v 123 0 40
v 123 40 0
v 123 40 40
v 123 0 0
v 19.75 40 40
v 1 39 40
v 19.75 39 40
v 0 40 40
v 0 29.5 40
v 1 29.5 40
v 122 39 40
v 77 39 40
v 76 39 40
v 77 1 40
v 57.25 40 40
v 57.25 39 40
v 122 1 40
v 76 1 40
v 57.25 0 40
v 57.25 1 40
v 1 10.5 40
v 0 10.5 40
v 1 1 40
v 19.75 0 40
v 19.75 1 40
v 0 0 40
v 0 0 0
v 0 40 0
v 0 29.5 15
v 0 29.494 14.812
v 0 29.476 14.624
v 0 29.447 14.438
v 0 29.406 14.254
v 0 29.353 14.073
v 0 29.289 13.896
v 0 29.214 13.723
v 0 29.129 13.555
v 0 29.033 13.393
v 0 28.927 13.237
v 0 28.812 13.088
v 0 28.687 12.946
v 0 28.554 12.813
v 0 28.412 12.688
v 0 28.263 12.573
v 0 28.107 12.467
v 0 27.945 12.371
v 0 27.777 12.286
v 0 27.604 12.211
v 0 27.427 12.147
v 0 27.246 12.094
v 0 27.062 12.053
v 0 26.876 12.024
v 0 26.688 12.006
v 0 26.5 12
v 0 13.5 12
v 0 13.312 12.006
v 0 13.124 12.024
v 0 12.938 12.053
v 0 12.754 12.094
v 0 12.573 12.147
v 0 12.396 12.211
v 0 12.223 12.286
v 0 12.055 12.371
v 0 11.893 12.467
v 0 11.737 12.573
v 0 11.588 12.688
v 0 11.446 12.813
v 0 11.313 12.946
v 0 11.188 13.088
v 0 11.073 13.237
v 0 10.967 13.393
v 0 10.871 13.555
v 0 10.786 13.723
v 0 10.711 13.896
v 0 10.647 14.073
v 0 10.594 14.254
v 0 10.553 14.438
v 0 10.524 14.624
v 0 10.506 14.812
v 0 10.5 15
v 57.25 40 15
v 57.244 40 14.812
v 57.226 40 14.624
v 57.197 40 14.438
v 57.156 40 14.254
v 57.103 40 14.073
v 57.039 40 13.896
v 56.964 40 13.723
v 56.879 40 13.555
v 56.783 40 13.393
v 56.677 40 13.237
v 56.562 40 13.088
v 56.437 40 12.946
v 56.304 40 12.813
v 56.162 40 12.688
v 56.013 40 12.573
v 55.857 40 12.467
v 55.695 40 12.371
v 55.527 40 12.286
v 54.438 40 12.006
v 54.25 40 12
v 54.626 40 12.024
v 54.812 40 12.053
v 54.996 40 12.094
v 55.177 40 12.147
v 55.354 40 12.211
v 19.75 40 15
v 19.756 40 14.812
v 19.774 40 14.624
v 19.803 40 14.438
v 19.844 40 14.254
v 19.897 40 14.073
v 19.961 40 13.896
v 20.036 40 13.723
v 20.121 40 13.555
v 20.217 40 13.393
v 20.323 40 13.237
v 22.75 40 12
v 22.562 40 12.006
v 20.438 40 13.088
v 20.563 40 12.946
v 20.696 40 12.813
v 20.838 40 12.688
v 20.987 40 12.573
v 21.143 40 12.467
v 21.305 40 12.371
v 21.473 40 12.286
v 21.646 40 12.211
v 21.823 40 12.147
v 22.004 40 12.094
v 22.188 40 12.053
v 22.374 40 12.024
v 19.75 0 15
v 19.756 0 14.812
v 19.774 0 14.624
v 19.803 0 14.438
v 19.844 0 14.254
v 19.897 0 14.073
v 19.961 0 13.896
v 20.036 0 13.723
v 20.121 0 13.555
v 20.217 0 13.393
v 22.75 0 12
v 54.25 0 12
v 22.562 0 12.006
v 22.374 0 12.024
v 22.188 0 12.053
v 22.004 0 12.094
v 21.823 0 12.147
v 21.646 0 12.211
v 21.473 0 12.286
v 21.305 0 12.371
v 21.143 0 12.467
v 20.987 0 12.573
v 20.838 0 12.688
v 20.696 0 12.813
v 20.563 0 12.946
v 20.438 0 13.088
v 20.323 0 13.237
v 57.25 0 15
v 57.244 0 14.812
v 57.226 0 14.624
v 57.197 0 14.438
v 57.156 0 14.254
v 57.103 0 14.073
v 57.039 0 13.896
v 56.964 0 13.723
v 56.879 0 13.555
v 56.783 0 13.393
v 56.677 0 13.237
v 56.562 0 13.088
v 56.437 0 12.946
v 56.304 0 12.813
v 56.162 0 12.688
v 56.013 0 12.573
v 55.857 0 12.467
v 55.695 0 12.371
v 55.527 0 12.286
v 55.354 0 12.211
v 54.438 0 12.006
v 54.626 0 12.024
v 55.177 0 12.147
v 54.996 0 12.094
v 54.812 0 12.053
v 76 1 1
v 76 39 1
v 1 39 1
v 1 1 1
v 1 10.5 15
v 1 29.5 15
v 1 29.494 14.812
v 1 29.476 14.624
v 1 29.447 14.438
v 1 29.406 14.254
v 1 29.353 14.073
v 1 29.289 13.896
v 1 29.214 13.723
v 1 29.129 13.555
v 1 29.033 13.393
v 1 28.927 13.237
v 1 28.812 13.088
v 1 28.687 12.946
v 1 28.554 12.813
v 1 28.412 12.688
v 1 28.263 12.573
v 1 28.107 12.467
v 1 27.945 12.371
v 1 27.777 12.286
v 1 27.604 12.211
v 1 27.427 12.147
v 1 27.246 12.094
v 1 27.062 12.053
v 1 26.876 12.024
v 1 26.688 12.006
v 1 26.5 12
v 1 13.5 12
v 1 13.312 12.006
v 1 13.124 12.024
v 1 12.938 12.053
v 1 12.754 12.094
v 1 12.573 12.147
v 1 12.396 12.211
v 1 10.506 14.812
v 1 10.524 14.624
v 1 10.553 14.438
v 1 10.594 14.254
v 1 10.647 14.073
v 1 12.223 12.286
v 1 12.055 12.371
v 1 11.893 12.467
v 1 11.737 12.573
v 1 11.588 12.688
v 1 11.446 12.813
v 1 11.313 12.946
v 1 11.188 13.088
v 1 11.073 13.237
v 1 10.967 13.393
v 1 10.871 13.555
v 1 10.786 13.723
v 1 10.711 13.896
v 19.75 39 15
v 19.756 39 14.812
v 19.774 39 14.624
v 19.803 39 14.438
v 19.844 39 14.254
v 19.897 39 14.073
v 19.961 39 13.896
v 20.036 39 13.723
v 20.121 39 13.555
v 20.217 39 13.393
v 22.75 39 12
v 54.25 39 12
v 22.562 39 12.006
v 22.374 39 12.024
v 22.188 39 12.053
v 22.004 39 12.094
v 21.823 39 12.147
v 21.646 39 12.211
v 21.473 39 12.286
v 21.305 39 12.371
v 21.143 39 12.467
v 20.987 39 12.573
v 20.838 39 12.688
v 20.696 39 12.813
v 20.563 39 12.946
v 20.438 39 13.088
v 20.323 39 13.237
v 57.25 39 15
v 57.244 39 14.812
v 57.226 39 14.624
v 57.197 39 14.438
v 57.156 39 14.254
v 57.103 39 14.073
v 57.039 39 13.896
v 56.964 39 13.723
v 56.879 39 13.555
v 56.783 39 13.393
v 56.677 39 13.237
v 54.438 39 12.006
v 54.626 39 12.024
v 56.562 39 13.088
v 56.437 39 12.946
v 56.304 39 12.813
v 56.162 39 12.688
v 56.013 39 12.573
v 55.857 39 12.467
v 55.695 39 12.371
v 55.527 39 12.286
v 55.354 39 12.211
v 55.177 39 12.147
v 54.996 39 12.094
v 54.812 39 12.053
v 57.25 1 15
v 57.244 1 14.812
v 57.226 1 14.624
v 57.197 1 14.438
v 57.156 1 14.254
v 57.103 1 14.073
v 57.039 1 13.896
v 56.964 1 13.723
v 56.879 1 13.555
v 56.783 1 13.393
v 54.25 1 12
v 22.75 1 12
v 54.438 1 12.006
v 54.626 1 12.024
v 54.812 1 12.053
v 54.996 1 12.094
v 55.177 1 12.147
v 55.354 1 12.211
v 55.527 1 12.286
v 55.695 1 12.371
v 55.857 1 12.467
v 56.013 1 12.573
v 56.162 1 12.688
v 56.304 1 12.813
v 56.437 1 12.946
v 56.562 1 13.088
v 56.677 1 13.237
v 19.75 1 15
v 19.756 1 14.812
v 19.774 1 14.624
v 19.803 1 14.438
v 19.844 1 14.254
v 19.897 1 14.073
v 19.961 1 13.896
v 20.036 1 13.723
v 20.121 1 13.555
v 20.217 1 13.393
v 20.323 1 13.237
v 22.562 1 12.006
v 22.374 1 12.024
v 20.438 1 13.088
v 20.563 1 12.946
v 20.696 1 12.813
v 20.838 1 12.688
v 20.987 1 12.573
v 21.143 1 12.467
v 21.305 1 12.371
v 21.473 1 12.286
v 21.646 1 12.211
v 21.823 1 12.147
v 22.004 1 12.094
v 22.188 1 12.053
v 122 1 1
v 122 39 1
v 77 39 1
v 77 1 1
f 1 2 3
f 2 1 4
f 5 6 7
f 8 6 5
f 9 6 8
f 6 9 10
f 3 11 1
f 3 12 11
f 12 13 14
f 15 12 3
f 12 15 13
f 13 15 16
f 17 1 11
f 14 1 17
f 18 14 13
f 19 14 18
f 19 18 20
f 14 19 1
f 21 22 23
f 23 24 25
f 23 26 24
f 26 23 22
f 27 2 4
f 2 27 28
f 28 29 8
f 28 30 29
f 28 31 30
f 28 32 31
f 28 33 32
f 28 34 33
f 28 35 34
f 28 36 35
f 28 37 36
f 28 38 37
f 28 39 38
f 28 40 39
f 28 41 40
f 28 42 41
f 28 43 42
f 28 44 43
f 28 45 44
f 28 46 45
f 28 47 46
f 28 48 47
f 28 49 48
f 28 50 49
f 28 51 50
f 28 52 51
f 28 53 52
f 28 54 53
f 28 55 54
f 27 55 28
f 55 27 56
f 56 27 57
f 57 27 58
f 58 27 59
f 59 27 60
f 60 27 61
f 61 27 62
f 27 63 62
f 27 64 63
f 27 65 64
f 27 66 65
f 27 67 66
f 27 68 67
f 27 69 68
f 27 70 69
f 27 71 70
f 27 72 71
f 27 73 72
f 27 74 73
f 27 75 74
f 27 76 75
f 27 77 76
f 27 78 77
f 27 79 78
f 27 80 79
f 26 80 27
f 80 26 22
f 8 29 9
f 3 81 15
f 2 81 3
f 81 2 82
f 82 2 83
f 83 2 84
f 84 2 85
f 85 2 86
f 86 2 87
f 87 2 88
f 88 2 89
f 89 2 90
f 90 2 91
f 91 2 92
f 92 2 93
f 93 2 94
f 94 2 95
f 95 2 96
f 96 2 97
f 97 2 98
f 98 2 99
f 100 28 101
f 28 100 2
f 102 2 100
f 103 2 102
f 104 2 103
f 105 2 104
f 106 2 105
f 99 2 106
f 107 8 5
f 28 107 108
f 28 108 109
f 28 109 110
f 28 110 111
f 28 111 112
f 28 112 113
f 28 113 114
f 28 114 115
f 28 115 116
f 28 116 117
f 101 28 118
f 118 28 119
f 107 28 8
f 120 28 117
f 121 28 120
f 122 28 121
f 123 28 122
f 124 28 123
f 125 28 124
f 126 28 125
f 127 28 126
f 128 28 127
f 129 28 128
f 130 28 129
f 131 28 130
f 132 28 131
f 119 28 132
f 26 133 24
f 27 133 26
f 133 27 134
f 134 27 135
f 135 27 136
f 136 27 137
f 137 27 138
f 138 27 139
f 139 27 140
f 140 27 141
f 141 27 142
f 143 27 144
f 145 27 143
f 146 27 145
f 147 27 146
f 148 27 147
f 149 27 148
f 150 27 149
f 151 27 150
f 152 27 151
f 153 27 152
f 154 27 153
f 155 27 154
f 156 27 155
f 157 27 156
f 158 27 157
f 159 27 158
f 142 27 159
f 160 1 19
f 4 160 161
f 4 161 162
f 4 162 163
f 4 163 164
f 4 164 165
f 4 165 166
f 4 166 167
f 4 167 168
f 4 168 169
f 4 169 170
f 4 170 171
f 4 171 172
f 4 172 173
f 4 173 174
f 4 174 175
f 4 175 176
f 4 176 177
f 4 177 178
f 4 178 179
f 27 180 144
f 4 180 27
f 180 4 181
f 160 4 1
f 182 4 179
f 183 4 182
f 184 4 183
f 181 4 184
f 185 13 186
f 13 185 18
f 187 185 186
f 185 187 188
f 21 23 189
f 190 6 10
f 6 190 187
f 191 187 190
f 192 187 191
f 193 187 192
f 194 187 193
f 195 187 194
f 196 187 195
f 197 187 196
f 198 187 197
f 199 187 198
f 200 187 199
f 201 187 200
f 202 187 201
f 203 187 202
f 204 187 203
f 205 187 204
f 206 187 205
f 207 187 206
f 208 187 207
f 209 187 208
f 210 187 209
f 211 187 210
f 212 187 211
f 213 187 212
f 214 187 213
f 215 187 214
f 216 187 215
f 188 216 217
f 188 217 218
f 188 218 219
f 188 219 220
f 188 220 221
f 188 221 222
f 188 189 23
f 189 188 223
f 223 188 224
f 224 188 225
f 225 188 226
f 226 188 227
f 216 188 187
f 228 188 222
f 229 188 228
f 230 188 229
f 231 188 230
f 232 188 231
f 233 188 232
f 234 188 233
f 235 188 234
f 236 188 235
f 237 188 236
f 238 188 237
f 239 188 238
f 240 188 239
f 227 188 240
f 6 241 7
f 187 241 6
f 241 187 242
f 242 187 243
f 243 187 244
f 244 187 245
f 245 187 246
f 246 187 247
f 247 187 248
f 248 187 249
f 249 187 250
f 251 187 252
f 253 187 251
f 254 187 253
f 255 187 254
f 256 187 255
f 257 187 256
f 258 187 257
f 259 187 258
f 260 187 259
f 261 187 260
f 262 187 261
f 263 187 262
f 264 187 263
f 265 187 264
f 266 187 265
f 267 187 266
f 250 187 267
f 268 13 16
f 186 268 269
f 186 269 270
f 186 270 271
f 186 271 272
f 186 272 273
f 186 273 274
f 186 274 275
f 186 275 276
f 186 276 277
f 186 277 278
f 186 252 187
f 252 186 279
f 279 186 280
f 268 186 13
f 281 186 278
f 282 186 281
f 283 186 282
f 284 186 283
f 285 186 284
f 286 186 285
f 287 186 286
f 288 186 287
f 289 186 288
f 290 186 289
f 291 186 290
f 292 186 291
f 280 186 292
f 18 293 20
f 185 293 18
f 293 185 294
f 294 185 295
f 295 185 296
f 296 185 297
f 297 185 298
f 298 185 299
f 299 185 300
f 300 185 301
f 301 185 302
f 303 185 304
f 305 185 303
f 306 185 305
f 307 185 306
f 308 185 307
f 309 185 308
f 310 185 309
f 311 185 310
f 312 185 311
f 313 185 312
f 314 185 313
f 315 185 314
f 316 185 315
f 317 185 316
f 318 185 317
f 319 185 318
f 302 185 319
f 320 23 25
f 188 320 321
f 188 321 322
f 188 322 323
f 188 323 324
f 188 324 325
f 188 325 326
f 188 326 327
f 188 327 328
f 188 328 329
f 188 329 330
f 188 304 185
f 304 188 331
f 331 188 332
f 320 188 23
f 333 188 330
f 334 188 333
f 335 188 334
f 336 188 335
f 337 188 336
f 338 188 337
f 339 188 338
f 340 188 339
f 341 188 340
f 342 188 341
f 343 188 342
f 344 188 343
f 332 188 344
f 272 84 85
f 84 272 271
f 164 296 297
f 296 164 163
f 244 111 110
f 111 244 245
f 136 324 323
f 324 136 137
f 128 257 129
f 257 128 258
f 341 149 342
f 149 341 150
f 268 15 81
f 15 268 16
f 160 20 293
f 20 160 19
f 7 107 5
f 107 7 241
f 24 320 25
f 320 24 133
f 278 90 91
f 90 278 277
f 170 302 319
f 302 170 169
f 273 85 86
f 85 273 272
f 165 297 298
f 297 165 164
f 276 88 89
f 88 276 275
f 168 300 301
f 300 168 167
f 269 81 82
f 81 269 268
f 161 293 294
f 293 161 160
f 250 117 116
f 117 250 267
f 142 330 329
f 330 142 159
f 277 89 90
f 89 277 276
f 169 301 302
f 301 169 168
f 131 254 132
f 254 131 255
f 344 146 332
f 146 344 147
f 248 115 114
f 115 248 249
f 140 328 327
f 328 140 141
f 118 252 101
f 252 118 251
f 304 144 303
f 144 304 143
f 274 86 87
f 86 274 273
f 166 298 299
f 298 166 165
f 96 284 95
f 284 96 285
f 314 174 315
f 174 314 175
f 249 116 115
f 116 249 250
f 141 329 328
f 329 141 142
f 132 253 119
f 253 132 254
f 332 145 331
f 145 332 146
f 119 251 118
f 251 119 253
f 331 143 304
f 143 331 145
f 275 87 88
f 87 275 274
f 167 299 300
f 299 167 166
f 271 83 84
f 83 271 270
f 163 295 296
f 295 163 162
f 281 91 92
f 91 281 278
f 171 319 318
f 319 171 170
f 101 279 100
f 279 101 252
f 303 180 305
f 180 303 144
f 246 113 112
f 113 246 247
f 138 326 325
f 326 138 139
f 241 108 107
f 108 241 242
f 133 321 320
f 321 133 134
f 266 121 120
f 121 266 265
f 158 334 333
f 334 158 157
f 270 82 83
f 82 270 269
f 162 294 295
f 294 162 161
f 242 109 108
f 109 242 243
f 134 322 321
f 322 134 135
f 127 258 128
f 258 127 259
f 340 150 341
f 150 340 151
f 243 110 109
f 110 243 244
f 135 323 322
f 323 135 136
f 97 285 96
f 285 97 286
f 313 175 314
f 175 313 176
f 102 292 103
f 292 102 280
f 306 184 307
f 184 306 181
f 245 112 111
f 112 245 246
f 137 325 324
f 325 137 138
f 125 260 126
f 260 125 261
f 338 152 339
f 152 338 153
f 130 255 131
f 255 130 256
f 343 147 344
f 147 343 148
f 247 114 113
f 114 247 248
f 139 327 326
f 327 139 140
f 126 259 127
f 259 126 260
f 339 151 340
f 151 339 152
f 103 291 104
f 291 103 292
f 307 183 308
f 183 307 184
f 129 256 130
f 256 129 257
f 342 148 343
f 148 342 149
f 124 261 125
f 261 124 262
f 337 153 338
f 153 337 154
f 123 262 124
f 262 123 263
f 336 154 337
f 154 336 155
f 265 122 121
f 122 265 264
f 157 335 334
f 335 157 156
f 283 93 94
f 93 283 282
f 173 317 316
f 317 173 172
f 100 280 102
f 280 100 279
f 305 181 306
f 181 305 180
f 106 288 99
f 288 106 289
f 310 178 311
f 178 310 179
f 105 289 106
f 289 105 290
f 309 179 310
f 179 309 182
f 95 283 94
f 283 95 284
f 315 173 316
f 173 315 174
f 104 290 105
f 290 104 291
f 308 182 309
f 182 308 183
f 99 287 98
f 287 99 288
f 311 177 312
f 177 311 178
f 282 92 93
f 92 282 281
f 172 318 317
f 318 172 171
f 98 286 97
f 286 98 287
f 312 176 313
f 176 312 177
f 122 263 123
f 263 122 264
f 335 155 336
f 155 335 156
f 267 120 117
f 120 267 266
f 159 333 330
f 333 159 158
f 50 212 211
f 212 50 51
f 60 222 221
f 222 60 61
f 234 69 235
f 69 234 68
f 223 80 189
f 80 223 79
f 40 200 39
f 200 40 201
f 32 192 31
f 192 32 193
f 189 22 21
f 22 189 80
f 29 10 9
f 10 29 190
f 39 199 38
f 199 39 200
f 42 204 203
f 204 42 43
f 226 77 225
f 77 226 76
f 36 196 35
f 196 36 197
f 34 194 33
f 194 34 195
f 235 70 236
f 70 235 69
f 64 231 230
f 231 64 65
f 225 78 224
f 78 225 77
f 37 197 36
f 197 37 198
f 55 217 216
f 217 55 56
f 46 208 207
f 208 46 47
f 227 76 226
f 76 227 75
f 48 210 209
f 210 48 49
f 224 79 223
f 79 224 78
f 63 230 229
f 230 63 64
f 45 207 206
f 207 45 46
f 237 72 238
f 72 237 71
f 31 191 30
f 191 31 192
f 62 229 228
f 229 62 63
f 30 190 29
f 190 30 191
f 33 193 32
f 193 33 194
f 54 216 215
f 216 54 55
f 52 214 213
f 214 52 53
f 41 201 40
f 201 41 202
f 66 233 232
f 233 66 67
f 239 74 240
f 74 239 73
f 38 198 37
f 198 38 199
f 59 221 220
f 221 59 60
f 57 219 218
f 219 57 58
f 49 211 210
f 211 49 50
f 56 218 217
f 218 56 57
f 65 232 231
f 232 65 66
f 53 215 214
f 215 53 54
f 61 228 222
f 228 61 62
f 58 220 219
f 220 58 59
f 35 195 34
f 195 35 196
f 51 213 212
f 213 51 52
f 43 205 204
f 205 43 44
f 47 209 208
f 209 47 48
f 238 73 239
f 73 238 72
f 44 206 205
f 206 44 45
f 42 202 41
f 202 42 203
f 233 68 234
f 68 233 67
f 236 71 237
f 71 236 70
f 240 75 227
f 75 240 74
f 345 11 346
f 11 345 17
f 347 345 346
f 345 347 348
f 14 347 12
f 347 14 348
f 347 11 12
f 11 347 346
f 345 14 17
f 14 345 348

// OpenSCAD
include <boardgame_insert_toolkit_lib.2.scad>;

// determines whether lids are output.
g_b_print_lid = true;

// determines whether boxes are output.
g_b_print_box = true; 

// Focus on one box
g_isolated_print_box = ""; 

// Used to visualize how all of the boxes fit together. 
g_b_visualization = false;          
        
// this is the outer wall thickness. 
//Default = 1.5mm
g_wall_thickness = 1.0;

// The tolerance value is extra space put between planes of the lid and box that fit together.
// Increase the tolerance to loosen the fit and decrease it to tighten it.
//
// Note that the tolerance is applied exclusively to the lid.
// So if the lid is too tight or too loose, change this value ( up for looser fit, down for tighter fit ) and 
// you only need to reprint the lid.
// 
// The exception is the stackable box, where the bottom of the box is the lid of the box below,
// in which case the tolerance also affects that box bottom.
//
g_tolerance = 0.15;

// This adjusts the position of the lid detents downward. 
// The larger the value, the bigger the gap between the lid and the box.
g_tolerance_detents_pos = 0.1;

aw_size_x = 123.0; // 218.0 - 95.0;
aw_size_y = 40.0;
aw_size_z = 40.0;

aw_field_tiles_size_x = 75.0;
aw_tokens_size_x = 45.0;

data =
  [
    [
      "simple box",
      [
        [ BOX_SIZE_XYZ, [aw_size_x, aw_size_y, aw_size_z] ],
        [ BOX_NO_LID_B, t],
        // Field tiles
        [
          BOX_COMPONENT,
          [
            [
              CMP_COMPARTMENT_SIZE_XYZ,
              [
                aw_field_tiles_size_x,
                aw_size_y - 2 * g_wall_thickness,
                aw_size_z - g_wall_thickness
              ]
            ],
            [ CMP_CUTOUT_SIDES_4B, [ t, t, t, f ] ],
            [ CMP_CUTOUT_HEIGHT_PCT, 60 ],
            [ CMP_CUTOUT_DEPTH_PCT, 0 ],
            [ CMP_NUM_COMPARTMENTS_XY, [1, 1] ],
            [
              POSITION_XY,
              [
                0,
                CENTER
              ]
            ]
          ]
        ],
        // Token box
        [
          BOX_COMPONENT,
          [
            [
              CMP_COMPARTMENT_SIZE_XYZ,
              [
                aw_tokens_size_x,
                aw_size_y - 2 * g_wall_thickness,
                aw_size_z - g_wall_thickness
              ]
            ],
            [ CMP_CUTOUT_SIDES_4B, [ f, f, f, f ] ],
            [ CMP_CUTOUT_HEIGHT_PCT, 60 ],
            [ CMP_CUTOUT_DEPTH_PCT, 0 ],
            [ CMP_NUM_COMPARTMENTS_XY, [1, 1] ],
            [
              POSITION_XY,
              [
                aw_field_tiles_size_x +
                g_wall_thickness,
                CENTER
              ]
            ]
          ]
        ],
      ]
    ]
  ];

MakeAll();
